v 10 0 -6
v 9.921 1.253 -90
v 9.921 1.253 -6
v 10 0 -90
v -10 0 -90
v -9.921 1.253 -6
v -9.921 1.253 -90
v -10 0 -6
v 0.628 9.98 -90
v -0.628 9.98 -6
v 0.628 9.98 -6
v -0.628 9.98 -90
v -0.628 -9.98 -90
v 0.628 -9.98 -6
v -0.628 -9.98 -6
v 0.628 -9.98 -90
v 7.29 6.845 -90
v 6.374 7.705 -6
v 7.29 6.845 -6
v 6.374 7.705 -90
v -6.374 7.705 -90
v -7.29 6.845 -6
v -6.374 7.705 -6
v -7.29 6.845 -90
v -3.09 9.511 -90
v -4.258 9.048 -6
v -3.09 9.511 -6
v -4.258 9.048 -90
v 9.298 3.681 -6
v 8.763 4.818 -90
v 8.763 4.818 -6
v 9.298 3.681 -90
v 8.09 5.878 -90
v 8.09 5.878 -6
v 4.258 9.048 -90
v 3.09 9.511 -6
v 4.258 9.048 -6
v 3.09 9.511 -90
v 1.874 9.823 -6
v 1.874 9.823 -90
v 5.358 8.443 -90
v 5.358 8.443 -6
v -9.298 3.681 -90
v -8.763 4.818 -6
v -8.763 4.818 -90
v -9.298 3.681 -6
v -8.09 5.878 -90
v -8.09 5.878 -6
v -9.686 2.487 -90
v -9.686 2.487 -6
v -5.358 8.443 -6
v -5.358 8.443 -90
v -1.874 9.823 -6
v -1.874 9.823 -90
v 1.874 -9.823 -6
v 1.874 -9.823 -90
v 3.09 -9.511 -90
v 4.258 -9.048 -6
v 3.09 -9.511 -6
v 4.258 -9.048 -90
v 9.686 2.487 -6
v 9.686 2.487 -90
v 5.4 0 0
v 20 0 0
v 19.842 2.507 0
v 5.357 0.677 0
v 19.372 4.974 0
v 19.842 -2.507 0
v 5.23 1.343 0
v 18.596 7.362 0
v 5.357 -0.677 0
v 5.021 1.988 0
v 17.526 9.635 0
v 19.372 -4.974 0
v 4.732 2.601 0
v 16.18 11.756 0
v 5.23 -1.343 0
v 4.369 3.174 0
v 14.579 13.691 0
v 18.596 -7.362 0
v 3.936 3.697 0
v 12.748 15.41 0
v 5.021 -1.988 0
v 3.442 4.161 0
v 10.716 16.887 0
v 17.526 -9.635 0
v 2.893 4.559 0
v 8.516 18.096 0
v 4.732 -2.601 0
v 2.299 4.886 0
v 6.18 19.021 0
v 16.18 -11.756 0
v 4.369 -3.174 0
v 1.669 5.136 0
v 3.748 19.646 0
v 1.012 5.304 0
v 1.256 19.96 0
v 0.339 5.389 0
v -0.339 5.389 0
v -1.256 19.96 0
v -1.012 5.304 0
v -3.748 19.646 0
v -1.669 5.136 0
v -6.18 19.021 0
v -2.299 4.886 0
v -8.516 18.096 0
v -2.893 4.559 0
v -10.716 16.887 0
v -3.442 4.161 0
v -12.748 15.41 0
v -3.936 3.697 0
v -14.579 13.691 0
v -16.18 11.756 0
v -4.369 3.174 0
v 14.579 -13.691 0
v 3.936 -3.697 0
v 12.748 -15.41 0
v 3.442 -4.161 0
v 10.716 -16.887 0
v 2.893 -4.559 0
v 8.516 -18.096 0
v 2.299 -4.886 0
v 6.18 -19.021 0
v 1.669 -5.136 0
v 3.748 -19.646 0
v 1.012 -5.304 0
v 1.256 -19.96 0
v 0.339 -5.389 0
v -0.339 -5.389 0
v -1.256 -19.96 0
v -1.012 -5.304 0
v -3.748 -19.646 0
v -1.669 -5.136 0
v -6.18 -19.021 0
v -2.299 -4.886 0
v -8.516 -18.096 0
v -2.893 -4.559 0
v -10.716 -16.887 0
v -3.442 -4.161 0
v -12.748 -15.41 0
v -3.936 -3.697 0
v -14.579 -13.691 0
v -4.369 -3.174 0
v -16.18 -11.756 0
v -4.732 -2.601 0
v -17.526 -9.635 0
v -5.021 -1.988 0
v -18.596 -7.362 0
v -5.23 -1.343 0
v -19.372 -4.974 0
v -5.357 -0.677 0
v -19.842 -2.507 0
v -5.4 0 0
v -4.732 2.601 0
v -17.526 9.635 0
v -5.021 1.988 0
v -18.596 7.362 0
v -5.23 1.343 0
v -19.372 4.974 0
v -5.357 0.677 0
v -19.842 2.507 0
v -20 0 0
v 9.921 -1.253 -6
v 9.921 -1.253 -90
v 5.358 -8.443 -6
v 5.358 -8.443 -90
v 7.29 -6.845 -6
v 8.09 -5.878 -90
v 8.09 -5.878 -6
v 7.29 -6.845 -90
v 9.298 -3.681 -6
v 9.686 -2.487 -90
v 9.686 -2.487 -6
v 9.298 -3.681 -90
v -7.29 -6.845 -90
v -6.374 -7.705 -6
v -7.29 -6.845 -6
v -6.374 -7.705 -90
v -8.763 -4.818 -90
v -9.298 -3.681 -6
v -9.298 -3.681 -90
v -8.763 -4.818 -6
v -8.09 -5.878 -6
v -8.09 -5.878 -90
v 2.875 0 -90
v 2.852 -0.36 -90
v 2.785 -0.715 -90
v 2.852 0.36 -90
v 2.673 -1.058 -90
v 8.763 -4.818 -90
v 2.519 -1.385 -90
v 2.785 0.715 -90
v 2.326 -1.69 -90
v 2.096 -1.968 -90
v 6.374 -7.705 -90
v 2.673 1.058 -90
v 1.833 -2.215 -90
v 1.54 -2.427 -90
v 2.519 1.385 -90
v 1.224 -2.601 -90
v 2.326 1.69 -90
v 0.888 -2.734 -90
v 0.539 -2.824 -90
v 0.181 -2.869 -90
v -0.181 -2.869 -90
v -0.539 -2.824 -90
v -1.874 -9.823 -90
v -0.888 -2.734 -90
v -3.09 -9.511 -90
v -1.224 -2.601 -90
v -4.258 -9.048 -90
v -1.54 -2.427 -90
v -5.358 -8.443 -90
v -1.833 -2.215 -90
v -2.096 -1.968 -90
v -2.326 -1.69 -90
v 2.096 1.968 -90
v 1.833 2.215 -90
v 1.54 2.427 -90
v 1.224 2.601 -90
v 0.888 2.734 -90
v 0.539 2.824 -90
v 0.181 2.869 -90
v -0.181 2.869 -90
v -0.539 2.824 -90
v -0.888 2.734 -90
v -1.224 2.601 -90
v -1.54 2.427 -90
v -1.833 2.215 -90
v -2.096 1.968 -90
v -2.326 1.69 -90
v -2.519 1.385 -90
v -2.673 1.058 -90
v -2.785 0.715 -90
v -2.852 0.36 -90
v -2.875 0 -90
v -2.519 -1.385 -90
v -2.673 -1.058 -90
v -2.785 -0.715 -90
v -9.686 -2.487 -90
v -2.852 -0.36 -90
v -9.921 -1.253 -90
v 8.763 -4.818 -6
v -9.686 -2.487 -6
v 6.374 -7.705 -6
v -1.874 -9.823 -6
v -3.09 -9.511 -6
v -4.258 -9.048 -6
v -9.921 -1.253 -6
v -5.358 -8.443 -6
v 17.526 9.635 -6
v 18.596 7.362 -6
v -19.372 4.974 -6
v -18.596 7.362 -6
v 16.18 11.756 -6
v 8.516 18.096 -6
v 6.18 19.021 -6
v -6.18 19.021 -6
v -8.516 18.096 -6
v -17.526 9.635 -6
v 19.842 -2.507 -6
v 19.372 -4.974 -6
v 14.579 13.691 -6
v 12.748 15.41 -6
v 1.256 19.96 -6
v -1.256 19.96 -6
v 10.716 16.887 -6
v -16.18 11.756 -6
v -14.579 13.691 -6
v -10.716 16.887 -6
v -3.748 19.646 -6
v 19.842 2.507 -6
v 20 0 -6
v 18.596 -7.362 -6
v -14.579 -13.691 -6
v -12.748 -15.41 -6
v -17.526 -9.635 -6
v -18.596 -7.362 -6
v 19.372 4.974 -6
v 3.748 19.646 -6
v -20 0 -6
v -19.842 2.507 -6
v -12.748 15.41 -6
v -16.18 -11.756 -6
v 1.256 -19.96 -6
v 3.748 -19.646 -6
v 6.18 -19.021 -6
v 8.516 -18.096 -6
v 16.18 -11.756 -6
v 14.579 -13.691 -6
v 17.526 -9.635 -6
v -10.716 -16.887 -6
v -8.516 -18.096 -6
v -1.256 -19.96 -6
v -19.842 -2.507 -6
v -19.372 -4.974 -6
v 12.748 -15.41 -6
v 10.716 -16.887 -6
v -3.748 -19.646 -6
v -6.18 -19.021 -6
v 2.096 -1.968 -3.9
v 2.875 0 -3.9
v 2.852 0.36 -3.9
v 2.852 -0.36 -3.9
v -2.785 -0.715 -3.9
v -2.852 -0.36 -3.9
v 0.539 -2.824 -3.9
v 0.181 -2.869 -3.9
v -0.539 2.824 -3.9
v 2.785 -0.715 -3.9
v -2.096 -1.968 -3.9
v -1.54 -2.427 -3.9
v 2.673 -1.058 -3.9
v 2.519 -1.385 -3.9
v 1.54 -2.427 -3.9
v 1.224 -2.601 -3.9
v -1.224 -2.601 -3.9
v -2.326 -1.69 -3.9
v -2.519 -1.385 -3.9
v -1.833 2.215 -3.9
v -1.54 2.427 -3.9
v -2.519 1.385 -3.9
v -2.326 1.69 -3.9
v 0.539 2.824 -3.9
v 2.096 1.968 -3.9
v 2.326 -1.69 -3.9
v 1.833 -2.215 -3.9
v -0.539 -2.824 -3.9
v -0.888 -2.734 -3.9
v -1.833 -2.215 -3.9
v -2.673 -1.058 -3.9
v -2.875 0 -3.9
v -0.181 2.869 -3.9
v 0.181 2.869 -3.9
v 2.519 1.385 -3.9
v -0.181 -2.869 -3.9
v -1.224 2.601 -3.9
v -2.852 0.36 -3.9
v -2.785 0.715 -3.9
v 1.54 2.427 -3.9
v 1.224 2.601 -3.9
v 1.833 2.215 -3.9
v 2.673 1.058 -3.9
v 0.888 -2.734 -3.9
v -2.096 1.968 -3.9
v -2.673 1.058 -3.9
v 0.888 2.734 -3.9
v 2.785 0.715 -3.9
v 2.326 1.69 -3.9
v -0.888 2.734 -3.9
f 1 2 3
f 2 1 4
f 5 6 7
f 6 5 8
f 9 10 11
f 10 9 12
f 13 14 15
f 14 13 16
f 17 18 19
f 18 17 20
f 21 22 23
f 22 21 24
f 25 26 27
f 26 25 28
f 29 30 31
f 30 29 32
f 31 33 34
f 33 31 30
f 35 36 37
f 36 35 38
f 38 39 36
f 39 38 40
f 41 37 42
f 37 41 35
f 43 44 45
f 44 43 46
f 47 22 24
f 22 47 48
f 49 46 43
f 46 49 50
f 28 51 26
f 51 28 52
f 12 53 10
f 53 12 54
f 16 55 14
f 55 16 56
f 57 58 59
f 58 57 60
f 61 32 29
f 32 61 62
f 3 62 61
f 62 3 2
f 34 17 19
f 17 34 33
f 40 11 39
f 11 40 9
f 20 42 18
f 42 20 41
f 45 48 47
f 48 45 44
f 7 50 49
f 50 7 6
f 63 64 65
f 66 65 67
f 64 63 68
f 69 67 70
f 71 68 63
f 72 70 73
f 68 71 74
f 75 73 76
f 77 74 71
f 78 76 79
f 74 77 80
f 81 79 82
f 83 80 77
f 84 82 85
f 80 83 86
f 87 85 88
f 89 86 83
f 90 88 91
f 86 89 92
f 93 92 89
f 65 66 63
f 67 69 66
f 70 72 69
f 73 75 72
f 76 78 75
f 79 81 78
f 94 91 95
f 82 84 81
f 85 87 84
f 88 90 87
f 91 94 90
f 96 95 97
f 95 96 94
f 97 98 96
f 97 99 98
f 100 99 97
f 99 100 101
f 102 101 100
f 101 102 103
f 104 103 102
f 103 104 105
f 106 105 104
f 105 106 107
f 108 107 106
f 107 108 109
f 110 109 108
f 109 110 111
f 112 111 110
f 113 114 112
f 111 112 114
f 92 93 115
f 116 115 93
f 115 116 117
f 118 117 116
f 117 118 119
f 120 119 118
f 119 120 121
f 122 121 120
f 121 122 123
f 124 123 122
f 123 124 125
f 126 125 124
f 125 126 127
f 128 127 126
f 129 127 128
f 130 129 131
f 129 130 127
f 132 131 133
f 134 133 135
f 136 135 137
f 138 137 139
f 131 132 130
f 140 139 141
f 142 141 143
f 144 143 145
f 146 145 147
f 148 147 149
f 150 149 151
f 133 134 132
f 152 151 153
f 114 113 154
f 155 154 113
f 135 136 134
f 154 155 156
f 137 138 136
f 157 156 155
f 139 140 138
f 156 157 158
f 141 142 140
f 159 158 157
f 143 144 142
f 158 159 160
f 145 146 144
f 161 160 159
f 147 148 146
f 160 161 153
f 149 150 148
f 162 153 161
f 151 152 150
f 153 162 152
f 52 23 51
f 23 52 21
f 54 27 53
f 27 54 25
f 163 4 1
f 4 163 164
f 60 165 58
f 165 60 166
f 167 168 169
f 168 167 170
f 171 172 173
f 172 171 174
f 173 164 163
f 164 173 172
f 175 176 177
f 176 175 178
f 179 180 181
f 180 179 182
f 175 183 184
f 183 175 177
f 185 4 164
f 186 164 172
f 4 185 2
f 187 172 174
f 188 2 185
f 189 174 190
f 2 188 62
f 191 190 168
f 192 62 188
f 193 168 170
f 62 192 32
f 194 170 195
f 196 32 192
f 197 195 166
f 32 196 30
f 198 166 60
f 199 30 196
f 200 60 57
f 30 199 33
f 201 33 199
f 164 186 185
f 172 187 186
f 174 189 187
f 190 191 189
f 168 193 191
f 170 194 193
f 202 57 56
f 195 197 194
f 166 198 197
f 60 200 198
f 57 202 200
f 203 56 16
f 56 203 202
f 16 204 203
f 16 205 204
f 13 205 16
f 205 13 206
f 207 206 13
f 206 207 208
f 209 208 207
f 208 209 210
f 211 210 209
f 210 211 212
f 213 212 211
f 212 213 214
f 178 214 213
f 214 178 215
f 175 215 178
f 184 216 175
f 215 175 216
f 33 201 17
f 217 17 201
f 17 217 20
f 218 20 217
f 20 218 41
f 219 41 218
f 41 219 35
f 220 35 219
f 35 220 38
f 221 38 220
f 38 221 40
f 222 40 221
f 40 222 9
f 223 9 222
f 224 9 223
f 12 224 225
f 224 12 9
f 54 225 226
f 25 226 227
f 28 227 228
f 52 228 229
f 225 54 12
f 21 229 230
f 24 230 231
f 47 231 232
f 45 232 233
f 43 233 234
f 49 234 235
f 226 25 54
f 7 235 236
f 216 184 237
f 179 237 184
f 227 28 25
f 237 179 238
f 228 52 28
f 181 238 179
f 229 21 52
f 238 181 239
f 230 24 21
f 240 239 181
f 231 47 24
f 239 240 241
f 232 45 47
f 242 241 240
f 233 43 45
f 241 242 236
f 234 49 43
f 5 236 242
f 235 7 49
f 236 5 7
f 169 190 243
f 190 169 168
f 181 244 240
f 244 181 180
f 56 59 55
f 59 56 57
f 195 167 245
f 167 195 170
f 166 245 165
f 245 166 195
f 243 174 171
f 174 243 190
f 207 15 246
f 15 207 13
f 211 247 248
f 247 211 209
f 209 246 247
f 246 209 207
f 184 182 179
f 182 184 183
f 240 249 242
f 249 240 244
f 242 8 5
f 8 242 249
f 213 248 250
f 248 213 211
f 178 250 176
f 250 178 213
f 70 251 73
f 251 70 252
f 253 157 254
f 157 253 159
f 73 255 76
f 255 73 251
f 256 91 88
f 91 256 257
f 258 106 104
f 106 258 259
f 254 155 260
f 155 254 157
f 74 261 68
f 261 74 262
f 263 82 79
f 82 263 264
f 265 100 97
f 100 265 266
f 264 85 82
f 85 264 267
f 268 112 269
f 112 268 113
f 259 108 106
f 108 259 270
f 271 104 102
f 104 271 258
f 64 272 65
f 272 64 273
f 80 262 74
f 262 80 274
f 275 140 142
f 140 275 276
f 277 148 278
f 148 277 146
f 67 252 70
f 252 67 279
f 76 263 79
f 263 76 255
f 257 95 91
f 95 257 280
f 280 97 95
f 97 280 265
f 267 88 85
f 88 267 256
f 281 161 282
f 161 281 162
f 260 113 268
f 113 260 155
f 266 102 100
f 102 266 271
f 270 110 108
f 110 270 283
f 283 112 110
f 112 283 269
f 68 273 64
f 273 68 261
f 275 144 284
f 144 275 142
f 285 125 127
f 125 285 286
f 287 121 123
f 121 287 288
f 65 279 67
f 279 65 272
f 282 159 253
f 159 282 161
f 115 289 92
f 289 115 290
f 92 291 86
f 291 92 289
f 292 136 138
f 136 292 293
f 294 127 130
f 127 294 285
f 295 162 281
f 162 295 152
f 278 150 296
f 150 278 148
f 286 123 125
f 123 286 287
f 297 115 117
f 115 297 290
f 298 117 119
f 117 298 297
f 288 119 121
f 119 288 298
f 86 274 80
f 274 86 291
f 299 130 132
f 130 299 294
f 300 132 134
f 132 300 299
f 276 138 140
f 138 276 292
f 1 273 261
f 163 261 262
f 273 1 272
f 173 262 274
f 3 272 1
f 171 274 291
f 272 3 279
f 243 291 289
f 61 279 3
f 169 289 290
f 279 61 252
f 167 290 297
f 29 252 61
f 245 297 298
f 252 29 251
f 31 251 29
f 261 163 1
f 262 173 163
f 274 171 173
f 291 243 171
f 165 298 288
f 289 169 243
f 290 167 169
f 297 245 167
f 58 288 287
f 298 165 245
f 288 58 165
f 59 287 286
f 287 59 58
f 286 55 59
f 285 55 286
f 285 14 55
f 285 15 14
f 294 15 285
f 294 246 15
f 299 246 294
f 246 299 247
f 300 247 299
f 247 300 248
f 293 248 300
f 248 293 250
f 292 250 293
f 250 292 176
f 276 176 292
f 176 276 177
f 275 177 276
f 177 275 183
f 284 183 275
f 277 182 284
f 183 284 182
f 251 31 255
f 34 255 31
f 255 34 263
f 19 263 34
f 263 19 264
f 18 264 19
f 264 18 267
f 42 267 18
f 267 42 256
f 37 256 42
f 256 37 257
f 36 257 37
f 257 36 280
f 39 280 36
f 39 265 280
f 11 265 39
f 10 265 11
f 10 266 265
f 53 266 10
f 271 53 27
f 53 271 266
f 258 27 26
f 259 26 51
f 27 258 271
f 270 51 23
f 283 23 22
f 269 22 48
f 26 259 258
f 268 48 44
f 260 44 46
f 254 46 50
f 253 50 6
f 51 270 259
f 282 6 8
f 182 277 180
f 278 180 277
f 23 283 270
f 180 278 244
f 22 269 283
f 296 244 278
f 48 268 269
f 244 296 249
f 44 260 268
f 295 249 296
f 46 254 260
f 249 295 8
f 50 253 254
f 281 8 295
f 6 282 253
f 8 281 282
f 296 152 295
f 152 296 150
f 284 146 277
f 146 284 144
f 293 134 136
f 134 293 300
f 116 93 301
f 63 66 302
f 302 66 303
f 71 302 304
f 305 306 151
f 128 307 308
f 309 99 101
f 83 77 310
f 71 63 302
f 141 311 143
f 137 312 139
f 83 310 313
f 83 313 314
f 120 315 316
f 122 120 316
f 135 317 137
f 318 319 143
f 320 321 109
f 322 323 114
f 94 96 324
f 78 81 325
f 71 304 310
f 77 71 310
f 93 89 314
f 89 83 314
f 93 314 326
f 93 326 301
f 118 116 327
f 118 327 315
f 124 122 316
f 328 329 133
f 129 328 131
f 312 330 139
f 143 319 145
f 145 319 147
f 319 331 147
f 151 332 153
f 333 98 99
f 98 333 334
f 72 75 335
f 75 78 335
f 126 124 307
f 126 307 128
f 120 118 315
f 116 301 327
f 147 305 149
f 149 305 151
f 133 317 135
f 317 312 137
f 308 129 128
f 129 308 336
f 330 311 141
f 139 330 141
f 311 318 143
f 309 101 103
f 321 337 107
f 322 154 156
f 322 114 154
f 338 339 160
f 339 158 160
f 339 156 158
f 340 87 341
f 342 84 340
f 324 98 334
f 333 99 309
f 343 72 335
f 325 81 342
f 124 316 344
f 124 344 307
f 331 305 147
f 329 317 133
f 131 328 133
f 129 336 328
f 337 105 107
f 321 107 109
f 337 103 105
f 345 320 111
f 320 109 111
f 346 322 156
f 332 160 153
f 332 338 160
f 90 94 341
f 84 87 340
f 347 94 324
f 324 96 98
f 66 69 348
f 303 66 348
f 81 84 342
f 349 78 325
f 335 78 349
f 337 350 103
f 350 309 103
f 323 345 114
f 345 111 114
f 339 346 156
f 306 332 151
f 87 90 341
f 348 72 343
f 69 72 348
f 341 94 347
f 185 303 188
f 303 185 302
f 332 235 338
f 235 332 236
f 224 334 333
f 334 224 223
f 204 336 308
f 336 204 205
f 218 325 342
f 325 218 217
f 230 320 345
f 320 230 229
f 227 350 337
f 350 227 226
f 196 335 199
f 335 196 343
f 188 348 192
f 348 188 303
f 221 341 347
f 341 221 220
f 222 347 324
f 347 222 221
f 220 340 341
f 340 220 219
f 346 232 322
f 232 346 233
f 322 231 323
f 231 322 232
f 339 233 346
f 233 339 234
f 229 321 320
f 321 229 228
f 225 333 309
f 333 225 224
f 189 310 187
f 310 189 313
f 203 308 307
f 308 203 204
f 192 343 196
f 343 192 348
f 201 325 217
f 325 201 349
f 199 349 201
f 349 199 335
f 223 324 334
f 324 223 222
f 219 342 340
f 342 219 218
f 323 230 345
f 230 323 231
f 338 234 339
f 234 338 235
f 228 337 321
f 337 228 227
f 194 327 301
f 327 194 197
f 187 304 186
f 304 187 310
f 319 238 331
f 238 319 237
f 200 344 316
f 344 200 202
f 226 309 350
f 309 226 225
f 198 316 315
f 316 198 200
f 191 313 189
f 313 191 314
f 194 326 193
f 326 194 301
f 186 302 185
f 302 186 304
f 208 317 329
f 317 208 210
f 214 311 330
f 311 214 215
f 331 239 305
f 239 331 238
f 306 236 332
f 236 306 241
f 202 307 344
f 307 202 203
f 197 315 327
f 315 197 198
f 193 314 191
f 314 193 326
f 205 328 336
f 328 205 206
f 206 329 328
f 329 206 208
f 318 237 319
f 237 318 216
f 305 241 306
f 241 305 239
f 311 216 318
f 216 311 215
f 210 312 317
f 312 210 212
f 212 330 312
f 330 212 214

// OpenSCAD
$fn = 50;


difference() {
	union() {
		translate(v = [0, 0, -90.0000000000]) {
			cylinder(h = 90, r = 10.0000000000);
		}
		translate(v = [0, 0, -6.0000000000]) {
			cylinder(h = 6, r = 20.0000000000);
		}
	}
	union() {
		translate(v = [0, 0, 0]) {
			rotate(a = [0, 0, 0]) {
				difference() {
					union() {
						#translate(v = [0, 0, -90.0000000000]) {
							cylinder(h = 90, r = 2.6000000000);
						}
						#translate(v = [0, 0, -3.9000000000]) {
							cylinder(h = 3.9000000000, r = 10.0000000000, r1 = 2.8750000000, r2 = 5.4000000000);
						}
						#translate(v = [0, 0, -90.0000000000]) {
							cylinder(h = 90, r = 2.8750000000);
						}
						#translate(v = [0, 0, -90.0000000000]) {
							cylinder(h = 90, r = 2.6000000000);
						}
					}
					union();
				}
			}
		}
	}
}
